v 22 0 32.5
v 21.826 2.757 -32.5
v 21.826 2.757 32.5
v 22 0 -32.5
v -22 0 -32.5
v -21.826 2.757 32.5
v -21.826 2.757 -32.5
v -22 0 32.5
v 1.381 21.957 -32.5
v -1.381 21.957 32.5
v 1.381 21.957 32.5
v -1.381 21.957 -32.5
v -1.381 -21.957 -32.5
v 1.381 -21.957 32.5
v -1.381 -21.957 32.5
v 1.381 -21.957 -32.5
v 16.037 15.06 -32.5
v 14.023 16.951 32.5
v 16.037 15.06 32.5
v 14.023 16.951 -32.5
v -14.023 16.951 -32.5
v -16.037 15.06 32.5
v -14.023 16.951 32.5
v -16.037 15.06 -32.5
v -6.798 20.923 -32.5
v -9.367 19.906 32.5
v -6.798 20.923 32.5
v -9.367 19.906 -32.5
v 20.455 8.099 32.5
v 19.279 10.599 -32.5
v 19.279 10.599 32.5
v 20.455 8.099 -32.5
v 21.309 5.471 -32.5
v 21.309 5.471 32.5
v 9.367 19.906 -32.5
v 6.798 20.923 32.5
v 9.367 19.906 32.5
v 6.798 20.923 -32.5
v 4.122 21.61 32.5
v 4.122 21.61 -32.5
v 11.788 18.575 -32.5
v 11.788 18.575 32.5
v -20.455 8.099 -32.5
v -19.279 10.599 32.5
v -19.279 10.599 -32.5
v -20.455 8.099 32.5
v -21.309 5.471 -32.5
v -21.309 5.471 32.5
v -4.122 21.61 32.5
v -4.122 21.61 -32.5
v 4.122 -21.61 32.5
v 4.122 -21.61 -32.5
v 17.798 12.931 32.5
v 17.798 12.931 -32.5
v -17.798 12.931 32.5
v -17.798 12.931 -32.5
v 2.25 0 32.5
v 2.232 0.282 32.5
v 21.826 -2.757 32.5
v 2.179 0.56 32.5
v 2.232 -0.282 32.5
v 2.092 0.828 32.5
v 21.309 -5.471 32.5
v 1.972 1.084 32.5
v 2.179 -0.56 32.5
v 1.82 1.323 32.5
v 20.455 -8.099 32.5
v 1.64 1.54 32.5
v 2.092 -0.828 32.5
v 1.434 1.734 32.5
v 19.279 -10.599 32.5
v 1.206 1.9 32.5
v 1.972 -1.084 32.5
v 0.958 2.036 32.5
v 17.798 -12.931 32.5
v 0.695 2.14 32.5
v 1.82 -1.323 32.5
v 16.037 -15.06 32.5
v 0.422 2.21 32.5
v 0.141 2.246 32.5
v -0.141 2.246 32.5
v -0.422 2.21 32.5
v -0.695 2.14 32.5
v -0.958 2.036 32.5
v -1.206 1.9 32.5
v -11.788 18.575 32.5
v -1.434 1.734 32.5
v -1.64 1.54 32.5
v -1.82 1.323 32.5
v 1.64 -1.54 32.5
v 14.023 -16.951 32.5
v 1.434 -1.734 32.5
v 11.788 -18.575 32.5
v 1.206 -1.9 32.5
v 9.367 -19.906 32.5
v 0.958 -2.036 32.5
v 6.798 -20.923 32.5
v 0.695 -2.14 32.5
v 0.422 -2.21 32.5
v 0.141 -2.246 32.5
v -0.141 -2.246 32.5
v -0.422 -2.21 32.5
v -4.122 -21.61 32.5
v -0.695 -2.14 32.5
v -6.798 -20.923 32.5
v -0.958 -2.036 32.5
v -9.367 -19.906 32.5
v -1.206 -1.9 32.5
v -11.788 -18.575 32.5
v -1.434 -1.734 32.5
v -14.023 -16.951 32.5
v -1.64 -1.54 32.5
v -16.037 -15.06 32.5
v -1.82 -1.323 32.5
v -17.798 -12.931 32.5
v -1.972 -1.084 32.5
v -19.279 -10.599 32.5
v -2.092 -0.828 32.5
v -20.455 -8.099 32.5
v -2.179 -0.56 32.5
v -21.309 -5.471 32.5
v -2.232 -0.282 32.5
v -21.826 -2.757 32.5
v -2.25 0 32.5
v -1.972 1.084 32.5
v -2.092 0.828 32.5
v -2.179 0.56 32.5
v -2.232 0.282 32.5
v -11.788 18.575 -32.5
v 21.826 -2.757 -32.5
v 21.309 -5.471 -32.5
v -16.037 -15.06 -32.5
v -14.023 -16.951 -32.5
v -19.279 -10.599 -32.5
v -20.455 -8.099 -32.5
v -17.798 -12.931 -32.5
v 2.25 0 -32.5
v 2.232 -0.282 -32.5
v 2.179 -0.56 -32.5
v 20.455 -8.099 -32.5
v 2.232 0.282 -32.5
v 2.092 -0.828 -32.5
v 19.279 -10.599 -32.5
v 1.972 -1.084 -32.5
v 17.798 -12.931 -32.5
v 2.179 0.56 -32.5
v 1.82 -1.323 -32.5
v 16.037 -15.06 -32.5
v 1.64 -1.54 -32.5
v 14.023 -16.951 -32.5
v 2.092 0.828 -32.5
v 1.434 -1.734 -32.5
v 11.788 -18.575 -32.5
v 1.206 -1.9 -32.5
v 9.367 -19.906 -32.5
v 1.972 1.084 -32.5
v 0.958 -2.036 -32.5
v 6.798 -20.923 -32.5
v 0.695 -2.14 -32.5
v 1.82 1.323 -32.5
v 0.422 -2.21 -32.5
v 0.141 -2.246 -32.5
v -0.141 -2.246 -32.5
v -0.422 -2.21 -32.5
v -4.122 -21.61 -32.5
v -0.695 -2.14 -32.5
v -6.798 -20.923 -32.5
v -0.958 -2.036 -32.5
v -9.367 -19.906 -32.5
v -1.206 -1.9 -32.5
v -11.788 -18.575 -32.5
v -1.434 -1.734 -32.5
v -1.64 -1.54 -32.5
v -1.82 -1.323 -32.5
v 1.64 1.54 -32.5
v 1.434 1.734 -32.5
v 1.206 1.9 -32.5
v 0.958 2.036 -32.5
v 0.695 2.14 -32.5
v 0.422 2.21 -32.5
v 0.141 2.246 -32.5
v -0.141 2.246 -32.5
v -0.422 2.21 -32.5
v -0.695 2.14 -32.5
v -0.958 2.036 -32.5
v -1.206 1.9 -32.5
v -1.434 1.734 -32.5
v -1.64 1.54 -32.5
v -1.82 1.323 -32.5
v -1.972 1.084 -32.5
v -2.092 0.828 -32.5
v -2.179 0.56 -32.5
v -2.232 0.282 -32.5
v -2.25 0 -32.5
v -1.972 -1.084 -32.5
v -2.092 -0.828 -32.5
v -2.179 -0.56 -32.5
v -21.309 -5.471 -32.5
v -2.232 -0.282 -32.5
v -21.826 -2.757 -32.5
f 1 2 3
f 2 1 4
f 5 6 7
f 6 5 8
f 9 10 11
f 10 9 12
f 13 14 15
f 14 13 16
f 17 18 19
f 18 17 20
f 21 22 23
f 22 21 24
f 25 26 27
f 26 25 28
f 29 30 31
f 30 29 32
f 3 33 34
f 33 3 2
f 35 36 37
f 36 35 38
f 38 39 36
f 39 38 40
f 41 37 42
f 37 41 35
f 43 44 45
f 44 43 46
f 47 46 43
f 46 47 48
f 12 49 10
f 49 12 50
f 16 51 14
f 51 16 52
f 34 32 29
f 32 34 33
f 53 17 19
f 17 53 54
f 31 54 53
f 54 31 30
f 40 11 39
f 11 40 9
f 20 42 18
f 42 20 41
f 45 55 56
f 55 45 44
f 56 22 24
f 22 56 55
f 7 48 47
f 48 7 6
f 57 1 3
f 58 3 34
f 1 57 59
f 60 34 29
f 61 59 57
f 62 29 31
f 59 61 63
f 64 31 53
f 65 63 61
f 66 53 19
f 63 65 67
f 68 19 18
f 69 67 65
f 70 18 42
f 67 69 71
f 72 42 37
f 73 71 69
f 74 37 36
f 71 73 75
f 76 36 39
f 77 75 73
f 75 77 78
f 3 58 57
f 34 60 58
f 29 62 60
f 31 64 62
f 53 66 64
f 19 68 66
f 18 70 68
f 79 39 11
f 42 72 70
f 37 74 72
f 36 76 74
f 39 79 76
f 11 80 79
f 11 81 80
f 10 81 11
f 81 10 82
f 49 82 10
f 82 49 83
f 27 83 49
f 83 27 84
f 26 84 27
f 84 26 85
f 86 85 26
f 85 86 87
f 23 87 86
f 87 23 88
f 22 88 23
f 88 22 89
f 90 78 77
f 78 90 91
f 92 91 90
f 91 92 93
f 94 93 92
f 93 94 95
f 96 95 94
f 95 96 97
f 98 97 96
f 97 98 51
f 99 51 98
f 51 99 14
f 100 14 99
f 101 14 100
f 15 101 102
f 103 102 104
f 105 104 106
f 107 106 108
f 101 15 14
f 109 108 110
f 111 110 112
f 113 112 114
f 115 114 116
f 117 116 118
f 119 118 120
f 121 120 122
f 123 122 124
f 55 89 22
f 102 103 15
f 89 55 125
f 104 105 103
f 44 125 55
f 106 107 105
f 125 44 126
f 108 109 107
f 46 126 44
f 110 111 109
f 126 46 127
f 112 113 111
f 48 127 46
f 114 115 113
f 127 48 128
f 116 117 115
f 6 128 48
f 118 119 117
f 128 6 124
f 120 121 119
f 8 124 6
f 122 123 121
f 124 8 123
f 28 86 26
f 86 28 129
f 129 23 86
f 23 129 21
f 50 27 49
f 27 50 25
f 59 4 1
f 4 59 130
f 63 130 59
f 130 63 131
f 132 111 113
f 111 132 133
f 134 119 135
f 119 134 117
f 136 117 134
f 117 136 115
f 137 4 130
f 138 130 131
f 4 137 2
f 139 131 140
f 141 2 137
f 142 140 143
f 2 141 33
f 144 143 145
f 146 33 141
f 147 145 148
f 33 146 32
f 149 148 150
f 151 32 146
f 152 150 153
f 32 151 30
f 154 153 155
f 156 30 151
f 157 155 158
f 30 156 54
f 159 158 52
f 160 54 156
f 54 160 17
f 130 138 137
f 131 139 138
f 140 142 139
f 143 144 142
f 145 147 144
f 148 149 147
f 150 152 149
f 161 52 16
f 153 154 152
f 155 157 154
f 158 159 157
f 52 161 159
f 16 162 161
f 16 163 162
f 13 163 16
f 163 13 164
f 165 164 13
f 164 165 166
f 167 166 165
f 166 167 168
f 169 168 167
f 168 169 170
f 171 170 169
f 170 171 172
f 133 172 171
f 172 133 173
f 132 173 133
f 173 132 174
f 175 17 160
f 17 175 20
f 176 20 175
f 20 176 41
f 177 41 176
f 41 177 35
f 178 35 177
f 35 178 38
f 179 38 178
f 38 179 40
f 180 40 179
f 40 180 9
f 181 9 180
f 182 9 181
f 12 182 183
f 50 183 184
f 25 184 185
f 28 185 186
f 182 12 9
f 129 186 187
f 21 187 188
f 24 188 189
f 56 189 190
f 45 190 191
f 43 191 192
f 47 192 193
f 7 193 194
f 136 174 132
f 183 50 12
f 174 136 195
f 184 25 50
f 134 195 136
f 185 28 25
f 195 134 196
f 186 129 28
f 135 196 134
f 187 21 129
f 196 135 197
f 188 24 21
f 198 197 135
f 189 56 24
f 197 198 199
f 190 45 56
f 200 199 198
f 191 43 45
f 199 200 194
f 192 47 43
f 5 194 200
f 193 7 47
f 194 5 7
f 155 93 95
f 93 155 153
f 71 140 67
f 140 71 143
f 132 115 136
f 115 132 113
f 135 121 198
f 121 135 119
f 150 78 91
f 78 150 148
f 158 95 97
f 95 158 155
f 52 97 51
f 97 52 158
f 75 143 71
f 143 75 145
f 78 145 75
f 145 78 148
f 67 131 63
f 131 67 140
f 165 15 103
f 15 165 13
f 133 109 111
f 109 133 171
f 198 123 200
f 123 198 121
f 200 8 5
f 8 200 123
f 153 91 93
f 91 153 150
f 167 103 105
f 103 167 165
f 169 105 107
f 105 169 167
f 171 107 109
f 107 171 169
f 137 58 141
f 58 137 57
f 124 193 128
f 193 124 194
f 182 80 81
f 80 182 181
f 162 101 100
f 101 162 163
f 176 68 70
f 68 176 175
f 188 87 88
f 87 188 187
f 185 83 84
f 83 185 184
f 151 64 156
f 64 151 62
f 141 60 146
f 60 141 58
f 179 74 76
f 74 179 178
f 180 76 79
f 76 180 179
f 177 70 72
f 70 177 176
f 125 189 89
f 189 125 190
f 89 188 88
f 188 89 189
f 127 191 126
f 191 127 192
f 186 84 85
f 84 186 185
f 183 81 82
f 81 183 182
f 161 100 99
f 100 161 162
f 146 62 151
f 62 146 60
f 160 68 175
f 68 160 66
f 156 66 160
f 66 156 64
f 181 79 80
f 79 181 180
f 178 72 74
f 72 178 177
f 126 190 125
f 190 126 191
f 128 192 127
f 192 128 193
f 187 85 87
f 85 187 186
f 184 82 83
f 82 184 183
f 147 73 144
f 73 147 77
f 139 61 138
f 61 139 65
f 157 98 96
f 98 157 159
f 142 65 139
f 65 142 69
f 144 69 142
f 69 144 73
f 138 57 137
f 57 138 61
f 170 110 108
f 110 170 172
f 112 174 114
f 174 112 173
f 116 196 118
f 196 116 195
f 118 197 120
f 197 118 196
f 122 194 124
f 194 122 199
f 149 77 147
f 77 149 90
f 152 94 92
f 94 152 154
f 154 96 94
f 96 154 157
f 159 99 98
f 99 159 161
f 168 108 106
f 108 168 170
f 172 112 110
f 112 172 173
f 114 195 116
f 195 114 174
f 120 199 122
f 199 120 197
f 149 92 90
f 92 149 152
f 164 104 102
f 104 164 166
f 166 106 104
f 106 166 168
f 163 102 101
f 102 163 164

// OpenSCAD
$fn = 50;


difference() {
	union() {
		translate(v = [0, 0, -32.5000000000]) {
			cylinder(h = 65, r = 22.0000000000);
		}
	}
	union() {
		translate(v = [0, 0, -100.0000000000]) {
			cylinder(h = 200, r = 2.2500000000);
		}
	}
}
